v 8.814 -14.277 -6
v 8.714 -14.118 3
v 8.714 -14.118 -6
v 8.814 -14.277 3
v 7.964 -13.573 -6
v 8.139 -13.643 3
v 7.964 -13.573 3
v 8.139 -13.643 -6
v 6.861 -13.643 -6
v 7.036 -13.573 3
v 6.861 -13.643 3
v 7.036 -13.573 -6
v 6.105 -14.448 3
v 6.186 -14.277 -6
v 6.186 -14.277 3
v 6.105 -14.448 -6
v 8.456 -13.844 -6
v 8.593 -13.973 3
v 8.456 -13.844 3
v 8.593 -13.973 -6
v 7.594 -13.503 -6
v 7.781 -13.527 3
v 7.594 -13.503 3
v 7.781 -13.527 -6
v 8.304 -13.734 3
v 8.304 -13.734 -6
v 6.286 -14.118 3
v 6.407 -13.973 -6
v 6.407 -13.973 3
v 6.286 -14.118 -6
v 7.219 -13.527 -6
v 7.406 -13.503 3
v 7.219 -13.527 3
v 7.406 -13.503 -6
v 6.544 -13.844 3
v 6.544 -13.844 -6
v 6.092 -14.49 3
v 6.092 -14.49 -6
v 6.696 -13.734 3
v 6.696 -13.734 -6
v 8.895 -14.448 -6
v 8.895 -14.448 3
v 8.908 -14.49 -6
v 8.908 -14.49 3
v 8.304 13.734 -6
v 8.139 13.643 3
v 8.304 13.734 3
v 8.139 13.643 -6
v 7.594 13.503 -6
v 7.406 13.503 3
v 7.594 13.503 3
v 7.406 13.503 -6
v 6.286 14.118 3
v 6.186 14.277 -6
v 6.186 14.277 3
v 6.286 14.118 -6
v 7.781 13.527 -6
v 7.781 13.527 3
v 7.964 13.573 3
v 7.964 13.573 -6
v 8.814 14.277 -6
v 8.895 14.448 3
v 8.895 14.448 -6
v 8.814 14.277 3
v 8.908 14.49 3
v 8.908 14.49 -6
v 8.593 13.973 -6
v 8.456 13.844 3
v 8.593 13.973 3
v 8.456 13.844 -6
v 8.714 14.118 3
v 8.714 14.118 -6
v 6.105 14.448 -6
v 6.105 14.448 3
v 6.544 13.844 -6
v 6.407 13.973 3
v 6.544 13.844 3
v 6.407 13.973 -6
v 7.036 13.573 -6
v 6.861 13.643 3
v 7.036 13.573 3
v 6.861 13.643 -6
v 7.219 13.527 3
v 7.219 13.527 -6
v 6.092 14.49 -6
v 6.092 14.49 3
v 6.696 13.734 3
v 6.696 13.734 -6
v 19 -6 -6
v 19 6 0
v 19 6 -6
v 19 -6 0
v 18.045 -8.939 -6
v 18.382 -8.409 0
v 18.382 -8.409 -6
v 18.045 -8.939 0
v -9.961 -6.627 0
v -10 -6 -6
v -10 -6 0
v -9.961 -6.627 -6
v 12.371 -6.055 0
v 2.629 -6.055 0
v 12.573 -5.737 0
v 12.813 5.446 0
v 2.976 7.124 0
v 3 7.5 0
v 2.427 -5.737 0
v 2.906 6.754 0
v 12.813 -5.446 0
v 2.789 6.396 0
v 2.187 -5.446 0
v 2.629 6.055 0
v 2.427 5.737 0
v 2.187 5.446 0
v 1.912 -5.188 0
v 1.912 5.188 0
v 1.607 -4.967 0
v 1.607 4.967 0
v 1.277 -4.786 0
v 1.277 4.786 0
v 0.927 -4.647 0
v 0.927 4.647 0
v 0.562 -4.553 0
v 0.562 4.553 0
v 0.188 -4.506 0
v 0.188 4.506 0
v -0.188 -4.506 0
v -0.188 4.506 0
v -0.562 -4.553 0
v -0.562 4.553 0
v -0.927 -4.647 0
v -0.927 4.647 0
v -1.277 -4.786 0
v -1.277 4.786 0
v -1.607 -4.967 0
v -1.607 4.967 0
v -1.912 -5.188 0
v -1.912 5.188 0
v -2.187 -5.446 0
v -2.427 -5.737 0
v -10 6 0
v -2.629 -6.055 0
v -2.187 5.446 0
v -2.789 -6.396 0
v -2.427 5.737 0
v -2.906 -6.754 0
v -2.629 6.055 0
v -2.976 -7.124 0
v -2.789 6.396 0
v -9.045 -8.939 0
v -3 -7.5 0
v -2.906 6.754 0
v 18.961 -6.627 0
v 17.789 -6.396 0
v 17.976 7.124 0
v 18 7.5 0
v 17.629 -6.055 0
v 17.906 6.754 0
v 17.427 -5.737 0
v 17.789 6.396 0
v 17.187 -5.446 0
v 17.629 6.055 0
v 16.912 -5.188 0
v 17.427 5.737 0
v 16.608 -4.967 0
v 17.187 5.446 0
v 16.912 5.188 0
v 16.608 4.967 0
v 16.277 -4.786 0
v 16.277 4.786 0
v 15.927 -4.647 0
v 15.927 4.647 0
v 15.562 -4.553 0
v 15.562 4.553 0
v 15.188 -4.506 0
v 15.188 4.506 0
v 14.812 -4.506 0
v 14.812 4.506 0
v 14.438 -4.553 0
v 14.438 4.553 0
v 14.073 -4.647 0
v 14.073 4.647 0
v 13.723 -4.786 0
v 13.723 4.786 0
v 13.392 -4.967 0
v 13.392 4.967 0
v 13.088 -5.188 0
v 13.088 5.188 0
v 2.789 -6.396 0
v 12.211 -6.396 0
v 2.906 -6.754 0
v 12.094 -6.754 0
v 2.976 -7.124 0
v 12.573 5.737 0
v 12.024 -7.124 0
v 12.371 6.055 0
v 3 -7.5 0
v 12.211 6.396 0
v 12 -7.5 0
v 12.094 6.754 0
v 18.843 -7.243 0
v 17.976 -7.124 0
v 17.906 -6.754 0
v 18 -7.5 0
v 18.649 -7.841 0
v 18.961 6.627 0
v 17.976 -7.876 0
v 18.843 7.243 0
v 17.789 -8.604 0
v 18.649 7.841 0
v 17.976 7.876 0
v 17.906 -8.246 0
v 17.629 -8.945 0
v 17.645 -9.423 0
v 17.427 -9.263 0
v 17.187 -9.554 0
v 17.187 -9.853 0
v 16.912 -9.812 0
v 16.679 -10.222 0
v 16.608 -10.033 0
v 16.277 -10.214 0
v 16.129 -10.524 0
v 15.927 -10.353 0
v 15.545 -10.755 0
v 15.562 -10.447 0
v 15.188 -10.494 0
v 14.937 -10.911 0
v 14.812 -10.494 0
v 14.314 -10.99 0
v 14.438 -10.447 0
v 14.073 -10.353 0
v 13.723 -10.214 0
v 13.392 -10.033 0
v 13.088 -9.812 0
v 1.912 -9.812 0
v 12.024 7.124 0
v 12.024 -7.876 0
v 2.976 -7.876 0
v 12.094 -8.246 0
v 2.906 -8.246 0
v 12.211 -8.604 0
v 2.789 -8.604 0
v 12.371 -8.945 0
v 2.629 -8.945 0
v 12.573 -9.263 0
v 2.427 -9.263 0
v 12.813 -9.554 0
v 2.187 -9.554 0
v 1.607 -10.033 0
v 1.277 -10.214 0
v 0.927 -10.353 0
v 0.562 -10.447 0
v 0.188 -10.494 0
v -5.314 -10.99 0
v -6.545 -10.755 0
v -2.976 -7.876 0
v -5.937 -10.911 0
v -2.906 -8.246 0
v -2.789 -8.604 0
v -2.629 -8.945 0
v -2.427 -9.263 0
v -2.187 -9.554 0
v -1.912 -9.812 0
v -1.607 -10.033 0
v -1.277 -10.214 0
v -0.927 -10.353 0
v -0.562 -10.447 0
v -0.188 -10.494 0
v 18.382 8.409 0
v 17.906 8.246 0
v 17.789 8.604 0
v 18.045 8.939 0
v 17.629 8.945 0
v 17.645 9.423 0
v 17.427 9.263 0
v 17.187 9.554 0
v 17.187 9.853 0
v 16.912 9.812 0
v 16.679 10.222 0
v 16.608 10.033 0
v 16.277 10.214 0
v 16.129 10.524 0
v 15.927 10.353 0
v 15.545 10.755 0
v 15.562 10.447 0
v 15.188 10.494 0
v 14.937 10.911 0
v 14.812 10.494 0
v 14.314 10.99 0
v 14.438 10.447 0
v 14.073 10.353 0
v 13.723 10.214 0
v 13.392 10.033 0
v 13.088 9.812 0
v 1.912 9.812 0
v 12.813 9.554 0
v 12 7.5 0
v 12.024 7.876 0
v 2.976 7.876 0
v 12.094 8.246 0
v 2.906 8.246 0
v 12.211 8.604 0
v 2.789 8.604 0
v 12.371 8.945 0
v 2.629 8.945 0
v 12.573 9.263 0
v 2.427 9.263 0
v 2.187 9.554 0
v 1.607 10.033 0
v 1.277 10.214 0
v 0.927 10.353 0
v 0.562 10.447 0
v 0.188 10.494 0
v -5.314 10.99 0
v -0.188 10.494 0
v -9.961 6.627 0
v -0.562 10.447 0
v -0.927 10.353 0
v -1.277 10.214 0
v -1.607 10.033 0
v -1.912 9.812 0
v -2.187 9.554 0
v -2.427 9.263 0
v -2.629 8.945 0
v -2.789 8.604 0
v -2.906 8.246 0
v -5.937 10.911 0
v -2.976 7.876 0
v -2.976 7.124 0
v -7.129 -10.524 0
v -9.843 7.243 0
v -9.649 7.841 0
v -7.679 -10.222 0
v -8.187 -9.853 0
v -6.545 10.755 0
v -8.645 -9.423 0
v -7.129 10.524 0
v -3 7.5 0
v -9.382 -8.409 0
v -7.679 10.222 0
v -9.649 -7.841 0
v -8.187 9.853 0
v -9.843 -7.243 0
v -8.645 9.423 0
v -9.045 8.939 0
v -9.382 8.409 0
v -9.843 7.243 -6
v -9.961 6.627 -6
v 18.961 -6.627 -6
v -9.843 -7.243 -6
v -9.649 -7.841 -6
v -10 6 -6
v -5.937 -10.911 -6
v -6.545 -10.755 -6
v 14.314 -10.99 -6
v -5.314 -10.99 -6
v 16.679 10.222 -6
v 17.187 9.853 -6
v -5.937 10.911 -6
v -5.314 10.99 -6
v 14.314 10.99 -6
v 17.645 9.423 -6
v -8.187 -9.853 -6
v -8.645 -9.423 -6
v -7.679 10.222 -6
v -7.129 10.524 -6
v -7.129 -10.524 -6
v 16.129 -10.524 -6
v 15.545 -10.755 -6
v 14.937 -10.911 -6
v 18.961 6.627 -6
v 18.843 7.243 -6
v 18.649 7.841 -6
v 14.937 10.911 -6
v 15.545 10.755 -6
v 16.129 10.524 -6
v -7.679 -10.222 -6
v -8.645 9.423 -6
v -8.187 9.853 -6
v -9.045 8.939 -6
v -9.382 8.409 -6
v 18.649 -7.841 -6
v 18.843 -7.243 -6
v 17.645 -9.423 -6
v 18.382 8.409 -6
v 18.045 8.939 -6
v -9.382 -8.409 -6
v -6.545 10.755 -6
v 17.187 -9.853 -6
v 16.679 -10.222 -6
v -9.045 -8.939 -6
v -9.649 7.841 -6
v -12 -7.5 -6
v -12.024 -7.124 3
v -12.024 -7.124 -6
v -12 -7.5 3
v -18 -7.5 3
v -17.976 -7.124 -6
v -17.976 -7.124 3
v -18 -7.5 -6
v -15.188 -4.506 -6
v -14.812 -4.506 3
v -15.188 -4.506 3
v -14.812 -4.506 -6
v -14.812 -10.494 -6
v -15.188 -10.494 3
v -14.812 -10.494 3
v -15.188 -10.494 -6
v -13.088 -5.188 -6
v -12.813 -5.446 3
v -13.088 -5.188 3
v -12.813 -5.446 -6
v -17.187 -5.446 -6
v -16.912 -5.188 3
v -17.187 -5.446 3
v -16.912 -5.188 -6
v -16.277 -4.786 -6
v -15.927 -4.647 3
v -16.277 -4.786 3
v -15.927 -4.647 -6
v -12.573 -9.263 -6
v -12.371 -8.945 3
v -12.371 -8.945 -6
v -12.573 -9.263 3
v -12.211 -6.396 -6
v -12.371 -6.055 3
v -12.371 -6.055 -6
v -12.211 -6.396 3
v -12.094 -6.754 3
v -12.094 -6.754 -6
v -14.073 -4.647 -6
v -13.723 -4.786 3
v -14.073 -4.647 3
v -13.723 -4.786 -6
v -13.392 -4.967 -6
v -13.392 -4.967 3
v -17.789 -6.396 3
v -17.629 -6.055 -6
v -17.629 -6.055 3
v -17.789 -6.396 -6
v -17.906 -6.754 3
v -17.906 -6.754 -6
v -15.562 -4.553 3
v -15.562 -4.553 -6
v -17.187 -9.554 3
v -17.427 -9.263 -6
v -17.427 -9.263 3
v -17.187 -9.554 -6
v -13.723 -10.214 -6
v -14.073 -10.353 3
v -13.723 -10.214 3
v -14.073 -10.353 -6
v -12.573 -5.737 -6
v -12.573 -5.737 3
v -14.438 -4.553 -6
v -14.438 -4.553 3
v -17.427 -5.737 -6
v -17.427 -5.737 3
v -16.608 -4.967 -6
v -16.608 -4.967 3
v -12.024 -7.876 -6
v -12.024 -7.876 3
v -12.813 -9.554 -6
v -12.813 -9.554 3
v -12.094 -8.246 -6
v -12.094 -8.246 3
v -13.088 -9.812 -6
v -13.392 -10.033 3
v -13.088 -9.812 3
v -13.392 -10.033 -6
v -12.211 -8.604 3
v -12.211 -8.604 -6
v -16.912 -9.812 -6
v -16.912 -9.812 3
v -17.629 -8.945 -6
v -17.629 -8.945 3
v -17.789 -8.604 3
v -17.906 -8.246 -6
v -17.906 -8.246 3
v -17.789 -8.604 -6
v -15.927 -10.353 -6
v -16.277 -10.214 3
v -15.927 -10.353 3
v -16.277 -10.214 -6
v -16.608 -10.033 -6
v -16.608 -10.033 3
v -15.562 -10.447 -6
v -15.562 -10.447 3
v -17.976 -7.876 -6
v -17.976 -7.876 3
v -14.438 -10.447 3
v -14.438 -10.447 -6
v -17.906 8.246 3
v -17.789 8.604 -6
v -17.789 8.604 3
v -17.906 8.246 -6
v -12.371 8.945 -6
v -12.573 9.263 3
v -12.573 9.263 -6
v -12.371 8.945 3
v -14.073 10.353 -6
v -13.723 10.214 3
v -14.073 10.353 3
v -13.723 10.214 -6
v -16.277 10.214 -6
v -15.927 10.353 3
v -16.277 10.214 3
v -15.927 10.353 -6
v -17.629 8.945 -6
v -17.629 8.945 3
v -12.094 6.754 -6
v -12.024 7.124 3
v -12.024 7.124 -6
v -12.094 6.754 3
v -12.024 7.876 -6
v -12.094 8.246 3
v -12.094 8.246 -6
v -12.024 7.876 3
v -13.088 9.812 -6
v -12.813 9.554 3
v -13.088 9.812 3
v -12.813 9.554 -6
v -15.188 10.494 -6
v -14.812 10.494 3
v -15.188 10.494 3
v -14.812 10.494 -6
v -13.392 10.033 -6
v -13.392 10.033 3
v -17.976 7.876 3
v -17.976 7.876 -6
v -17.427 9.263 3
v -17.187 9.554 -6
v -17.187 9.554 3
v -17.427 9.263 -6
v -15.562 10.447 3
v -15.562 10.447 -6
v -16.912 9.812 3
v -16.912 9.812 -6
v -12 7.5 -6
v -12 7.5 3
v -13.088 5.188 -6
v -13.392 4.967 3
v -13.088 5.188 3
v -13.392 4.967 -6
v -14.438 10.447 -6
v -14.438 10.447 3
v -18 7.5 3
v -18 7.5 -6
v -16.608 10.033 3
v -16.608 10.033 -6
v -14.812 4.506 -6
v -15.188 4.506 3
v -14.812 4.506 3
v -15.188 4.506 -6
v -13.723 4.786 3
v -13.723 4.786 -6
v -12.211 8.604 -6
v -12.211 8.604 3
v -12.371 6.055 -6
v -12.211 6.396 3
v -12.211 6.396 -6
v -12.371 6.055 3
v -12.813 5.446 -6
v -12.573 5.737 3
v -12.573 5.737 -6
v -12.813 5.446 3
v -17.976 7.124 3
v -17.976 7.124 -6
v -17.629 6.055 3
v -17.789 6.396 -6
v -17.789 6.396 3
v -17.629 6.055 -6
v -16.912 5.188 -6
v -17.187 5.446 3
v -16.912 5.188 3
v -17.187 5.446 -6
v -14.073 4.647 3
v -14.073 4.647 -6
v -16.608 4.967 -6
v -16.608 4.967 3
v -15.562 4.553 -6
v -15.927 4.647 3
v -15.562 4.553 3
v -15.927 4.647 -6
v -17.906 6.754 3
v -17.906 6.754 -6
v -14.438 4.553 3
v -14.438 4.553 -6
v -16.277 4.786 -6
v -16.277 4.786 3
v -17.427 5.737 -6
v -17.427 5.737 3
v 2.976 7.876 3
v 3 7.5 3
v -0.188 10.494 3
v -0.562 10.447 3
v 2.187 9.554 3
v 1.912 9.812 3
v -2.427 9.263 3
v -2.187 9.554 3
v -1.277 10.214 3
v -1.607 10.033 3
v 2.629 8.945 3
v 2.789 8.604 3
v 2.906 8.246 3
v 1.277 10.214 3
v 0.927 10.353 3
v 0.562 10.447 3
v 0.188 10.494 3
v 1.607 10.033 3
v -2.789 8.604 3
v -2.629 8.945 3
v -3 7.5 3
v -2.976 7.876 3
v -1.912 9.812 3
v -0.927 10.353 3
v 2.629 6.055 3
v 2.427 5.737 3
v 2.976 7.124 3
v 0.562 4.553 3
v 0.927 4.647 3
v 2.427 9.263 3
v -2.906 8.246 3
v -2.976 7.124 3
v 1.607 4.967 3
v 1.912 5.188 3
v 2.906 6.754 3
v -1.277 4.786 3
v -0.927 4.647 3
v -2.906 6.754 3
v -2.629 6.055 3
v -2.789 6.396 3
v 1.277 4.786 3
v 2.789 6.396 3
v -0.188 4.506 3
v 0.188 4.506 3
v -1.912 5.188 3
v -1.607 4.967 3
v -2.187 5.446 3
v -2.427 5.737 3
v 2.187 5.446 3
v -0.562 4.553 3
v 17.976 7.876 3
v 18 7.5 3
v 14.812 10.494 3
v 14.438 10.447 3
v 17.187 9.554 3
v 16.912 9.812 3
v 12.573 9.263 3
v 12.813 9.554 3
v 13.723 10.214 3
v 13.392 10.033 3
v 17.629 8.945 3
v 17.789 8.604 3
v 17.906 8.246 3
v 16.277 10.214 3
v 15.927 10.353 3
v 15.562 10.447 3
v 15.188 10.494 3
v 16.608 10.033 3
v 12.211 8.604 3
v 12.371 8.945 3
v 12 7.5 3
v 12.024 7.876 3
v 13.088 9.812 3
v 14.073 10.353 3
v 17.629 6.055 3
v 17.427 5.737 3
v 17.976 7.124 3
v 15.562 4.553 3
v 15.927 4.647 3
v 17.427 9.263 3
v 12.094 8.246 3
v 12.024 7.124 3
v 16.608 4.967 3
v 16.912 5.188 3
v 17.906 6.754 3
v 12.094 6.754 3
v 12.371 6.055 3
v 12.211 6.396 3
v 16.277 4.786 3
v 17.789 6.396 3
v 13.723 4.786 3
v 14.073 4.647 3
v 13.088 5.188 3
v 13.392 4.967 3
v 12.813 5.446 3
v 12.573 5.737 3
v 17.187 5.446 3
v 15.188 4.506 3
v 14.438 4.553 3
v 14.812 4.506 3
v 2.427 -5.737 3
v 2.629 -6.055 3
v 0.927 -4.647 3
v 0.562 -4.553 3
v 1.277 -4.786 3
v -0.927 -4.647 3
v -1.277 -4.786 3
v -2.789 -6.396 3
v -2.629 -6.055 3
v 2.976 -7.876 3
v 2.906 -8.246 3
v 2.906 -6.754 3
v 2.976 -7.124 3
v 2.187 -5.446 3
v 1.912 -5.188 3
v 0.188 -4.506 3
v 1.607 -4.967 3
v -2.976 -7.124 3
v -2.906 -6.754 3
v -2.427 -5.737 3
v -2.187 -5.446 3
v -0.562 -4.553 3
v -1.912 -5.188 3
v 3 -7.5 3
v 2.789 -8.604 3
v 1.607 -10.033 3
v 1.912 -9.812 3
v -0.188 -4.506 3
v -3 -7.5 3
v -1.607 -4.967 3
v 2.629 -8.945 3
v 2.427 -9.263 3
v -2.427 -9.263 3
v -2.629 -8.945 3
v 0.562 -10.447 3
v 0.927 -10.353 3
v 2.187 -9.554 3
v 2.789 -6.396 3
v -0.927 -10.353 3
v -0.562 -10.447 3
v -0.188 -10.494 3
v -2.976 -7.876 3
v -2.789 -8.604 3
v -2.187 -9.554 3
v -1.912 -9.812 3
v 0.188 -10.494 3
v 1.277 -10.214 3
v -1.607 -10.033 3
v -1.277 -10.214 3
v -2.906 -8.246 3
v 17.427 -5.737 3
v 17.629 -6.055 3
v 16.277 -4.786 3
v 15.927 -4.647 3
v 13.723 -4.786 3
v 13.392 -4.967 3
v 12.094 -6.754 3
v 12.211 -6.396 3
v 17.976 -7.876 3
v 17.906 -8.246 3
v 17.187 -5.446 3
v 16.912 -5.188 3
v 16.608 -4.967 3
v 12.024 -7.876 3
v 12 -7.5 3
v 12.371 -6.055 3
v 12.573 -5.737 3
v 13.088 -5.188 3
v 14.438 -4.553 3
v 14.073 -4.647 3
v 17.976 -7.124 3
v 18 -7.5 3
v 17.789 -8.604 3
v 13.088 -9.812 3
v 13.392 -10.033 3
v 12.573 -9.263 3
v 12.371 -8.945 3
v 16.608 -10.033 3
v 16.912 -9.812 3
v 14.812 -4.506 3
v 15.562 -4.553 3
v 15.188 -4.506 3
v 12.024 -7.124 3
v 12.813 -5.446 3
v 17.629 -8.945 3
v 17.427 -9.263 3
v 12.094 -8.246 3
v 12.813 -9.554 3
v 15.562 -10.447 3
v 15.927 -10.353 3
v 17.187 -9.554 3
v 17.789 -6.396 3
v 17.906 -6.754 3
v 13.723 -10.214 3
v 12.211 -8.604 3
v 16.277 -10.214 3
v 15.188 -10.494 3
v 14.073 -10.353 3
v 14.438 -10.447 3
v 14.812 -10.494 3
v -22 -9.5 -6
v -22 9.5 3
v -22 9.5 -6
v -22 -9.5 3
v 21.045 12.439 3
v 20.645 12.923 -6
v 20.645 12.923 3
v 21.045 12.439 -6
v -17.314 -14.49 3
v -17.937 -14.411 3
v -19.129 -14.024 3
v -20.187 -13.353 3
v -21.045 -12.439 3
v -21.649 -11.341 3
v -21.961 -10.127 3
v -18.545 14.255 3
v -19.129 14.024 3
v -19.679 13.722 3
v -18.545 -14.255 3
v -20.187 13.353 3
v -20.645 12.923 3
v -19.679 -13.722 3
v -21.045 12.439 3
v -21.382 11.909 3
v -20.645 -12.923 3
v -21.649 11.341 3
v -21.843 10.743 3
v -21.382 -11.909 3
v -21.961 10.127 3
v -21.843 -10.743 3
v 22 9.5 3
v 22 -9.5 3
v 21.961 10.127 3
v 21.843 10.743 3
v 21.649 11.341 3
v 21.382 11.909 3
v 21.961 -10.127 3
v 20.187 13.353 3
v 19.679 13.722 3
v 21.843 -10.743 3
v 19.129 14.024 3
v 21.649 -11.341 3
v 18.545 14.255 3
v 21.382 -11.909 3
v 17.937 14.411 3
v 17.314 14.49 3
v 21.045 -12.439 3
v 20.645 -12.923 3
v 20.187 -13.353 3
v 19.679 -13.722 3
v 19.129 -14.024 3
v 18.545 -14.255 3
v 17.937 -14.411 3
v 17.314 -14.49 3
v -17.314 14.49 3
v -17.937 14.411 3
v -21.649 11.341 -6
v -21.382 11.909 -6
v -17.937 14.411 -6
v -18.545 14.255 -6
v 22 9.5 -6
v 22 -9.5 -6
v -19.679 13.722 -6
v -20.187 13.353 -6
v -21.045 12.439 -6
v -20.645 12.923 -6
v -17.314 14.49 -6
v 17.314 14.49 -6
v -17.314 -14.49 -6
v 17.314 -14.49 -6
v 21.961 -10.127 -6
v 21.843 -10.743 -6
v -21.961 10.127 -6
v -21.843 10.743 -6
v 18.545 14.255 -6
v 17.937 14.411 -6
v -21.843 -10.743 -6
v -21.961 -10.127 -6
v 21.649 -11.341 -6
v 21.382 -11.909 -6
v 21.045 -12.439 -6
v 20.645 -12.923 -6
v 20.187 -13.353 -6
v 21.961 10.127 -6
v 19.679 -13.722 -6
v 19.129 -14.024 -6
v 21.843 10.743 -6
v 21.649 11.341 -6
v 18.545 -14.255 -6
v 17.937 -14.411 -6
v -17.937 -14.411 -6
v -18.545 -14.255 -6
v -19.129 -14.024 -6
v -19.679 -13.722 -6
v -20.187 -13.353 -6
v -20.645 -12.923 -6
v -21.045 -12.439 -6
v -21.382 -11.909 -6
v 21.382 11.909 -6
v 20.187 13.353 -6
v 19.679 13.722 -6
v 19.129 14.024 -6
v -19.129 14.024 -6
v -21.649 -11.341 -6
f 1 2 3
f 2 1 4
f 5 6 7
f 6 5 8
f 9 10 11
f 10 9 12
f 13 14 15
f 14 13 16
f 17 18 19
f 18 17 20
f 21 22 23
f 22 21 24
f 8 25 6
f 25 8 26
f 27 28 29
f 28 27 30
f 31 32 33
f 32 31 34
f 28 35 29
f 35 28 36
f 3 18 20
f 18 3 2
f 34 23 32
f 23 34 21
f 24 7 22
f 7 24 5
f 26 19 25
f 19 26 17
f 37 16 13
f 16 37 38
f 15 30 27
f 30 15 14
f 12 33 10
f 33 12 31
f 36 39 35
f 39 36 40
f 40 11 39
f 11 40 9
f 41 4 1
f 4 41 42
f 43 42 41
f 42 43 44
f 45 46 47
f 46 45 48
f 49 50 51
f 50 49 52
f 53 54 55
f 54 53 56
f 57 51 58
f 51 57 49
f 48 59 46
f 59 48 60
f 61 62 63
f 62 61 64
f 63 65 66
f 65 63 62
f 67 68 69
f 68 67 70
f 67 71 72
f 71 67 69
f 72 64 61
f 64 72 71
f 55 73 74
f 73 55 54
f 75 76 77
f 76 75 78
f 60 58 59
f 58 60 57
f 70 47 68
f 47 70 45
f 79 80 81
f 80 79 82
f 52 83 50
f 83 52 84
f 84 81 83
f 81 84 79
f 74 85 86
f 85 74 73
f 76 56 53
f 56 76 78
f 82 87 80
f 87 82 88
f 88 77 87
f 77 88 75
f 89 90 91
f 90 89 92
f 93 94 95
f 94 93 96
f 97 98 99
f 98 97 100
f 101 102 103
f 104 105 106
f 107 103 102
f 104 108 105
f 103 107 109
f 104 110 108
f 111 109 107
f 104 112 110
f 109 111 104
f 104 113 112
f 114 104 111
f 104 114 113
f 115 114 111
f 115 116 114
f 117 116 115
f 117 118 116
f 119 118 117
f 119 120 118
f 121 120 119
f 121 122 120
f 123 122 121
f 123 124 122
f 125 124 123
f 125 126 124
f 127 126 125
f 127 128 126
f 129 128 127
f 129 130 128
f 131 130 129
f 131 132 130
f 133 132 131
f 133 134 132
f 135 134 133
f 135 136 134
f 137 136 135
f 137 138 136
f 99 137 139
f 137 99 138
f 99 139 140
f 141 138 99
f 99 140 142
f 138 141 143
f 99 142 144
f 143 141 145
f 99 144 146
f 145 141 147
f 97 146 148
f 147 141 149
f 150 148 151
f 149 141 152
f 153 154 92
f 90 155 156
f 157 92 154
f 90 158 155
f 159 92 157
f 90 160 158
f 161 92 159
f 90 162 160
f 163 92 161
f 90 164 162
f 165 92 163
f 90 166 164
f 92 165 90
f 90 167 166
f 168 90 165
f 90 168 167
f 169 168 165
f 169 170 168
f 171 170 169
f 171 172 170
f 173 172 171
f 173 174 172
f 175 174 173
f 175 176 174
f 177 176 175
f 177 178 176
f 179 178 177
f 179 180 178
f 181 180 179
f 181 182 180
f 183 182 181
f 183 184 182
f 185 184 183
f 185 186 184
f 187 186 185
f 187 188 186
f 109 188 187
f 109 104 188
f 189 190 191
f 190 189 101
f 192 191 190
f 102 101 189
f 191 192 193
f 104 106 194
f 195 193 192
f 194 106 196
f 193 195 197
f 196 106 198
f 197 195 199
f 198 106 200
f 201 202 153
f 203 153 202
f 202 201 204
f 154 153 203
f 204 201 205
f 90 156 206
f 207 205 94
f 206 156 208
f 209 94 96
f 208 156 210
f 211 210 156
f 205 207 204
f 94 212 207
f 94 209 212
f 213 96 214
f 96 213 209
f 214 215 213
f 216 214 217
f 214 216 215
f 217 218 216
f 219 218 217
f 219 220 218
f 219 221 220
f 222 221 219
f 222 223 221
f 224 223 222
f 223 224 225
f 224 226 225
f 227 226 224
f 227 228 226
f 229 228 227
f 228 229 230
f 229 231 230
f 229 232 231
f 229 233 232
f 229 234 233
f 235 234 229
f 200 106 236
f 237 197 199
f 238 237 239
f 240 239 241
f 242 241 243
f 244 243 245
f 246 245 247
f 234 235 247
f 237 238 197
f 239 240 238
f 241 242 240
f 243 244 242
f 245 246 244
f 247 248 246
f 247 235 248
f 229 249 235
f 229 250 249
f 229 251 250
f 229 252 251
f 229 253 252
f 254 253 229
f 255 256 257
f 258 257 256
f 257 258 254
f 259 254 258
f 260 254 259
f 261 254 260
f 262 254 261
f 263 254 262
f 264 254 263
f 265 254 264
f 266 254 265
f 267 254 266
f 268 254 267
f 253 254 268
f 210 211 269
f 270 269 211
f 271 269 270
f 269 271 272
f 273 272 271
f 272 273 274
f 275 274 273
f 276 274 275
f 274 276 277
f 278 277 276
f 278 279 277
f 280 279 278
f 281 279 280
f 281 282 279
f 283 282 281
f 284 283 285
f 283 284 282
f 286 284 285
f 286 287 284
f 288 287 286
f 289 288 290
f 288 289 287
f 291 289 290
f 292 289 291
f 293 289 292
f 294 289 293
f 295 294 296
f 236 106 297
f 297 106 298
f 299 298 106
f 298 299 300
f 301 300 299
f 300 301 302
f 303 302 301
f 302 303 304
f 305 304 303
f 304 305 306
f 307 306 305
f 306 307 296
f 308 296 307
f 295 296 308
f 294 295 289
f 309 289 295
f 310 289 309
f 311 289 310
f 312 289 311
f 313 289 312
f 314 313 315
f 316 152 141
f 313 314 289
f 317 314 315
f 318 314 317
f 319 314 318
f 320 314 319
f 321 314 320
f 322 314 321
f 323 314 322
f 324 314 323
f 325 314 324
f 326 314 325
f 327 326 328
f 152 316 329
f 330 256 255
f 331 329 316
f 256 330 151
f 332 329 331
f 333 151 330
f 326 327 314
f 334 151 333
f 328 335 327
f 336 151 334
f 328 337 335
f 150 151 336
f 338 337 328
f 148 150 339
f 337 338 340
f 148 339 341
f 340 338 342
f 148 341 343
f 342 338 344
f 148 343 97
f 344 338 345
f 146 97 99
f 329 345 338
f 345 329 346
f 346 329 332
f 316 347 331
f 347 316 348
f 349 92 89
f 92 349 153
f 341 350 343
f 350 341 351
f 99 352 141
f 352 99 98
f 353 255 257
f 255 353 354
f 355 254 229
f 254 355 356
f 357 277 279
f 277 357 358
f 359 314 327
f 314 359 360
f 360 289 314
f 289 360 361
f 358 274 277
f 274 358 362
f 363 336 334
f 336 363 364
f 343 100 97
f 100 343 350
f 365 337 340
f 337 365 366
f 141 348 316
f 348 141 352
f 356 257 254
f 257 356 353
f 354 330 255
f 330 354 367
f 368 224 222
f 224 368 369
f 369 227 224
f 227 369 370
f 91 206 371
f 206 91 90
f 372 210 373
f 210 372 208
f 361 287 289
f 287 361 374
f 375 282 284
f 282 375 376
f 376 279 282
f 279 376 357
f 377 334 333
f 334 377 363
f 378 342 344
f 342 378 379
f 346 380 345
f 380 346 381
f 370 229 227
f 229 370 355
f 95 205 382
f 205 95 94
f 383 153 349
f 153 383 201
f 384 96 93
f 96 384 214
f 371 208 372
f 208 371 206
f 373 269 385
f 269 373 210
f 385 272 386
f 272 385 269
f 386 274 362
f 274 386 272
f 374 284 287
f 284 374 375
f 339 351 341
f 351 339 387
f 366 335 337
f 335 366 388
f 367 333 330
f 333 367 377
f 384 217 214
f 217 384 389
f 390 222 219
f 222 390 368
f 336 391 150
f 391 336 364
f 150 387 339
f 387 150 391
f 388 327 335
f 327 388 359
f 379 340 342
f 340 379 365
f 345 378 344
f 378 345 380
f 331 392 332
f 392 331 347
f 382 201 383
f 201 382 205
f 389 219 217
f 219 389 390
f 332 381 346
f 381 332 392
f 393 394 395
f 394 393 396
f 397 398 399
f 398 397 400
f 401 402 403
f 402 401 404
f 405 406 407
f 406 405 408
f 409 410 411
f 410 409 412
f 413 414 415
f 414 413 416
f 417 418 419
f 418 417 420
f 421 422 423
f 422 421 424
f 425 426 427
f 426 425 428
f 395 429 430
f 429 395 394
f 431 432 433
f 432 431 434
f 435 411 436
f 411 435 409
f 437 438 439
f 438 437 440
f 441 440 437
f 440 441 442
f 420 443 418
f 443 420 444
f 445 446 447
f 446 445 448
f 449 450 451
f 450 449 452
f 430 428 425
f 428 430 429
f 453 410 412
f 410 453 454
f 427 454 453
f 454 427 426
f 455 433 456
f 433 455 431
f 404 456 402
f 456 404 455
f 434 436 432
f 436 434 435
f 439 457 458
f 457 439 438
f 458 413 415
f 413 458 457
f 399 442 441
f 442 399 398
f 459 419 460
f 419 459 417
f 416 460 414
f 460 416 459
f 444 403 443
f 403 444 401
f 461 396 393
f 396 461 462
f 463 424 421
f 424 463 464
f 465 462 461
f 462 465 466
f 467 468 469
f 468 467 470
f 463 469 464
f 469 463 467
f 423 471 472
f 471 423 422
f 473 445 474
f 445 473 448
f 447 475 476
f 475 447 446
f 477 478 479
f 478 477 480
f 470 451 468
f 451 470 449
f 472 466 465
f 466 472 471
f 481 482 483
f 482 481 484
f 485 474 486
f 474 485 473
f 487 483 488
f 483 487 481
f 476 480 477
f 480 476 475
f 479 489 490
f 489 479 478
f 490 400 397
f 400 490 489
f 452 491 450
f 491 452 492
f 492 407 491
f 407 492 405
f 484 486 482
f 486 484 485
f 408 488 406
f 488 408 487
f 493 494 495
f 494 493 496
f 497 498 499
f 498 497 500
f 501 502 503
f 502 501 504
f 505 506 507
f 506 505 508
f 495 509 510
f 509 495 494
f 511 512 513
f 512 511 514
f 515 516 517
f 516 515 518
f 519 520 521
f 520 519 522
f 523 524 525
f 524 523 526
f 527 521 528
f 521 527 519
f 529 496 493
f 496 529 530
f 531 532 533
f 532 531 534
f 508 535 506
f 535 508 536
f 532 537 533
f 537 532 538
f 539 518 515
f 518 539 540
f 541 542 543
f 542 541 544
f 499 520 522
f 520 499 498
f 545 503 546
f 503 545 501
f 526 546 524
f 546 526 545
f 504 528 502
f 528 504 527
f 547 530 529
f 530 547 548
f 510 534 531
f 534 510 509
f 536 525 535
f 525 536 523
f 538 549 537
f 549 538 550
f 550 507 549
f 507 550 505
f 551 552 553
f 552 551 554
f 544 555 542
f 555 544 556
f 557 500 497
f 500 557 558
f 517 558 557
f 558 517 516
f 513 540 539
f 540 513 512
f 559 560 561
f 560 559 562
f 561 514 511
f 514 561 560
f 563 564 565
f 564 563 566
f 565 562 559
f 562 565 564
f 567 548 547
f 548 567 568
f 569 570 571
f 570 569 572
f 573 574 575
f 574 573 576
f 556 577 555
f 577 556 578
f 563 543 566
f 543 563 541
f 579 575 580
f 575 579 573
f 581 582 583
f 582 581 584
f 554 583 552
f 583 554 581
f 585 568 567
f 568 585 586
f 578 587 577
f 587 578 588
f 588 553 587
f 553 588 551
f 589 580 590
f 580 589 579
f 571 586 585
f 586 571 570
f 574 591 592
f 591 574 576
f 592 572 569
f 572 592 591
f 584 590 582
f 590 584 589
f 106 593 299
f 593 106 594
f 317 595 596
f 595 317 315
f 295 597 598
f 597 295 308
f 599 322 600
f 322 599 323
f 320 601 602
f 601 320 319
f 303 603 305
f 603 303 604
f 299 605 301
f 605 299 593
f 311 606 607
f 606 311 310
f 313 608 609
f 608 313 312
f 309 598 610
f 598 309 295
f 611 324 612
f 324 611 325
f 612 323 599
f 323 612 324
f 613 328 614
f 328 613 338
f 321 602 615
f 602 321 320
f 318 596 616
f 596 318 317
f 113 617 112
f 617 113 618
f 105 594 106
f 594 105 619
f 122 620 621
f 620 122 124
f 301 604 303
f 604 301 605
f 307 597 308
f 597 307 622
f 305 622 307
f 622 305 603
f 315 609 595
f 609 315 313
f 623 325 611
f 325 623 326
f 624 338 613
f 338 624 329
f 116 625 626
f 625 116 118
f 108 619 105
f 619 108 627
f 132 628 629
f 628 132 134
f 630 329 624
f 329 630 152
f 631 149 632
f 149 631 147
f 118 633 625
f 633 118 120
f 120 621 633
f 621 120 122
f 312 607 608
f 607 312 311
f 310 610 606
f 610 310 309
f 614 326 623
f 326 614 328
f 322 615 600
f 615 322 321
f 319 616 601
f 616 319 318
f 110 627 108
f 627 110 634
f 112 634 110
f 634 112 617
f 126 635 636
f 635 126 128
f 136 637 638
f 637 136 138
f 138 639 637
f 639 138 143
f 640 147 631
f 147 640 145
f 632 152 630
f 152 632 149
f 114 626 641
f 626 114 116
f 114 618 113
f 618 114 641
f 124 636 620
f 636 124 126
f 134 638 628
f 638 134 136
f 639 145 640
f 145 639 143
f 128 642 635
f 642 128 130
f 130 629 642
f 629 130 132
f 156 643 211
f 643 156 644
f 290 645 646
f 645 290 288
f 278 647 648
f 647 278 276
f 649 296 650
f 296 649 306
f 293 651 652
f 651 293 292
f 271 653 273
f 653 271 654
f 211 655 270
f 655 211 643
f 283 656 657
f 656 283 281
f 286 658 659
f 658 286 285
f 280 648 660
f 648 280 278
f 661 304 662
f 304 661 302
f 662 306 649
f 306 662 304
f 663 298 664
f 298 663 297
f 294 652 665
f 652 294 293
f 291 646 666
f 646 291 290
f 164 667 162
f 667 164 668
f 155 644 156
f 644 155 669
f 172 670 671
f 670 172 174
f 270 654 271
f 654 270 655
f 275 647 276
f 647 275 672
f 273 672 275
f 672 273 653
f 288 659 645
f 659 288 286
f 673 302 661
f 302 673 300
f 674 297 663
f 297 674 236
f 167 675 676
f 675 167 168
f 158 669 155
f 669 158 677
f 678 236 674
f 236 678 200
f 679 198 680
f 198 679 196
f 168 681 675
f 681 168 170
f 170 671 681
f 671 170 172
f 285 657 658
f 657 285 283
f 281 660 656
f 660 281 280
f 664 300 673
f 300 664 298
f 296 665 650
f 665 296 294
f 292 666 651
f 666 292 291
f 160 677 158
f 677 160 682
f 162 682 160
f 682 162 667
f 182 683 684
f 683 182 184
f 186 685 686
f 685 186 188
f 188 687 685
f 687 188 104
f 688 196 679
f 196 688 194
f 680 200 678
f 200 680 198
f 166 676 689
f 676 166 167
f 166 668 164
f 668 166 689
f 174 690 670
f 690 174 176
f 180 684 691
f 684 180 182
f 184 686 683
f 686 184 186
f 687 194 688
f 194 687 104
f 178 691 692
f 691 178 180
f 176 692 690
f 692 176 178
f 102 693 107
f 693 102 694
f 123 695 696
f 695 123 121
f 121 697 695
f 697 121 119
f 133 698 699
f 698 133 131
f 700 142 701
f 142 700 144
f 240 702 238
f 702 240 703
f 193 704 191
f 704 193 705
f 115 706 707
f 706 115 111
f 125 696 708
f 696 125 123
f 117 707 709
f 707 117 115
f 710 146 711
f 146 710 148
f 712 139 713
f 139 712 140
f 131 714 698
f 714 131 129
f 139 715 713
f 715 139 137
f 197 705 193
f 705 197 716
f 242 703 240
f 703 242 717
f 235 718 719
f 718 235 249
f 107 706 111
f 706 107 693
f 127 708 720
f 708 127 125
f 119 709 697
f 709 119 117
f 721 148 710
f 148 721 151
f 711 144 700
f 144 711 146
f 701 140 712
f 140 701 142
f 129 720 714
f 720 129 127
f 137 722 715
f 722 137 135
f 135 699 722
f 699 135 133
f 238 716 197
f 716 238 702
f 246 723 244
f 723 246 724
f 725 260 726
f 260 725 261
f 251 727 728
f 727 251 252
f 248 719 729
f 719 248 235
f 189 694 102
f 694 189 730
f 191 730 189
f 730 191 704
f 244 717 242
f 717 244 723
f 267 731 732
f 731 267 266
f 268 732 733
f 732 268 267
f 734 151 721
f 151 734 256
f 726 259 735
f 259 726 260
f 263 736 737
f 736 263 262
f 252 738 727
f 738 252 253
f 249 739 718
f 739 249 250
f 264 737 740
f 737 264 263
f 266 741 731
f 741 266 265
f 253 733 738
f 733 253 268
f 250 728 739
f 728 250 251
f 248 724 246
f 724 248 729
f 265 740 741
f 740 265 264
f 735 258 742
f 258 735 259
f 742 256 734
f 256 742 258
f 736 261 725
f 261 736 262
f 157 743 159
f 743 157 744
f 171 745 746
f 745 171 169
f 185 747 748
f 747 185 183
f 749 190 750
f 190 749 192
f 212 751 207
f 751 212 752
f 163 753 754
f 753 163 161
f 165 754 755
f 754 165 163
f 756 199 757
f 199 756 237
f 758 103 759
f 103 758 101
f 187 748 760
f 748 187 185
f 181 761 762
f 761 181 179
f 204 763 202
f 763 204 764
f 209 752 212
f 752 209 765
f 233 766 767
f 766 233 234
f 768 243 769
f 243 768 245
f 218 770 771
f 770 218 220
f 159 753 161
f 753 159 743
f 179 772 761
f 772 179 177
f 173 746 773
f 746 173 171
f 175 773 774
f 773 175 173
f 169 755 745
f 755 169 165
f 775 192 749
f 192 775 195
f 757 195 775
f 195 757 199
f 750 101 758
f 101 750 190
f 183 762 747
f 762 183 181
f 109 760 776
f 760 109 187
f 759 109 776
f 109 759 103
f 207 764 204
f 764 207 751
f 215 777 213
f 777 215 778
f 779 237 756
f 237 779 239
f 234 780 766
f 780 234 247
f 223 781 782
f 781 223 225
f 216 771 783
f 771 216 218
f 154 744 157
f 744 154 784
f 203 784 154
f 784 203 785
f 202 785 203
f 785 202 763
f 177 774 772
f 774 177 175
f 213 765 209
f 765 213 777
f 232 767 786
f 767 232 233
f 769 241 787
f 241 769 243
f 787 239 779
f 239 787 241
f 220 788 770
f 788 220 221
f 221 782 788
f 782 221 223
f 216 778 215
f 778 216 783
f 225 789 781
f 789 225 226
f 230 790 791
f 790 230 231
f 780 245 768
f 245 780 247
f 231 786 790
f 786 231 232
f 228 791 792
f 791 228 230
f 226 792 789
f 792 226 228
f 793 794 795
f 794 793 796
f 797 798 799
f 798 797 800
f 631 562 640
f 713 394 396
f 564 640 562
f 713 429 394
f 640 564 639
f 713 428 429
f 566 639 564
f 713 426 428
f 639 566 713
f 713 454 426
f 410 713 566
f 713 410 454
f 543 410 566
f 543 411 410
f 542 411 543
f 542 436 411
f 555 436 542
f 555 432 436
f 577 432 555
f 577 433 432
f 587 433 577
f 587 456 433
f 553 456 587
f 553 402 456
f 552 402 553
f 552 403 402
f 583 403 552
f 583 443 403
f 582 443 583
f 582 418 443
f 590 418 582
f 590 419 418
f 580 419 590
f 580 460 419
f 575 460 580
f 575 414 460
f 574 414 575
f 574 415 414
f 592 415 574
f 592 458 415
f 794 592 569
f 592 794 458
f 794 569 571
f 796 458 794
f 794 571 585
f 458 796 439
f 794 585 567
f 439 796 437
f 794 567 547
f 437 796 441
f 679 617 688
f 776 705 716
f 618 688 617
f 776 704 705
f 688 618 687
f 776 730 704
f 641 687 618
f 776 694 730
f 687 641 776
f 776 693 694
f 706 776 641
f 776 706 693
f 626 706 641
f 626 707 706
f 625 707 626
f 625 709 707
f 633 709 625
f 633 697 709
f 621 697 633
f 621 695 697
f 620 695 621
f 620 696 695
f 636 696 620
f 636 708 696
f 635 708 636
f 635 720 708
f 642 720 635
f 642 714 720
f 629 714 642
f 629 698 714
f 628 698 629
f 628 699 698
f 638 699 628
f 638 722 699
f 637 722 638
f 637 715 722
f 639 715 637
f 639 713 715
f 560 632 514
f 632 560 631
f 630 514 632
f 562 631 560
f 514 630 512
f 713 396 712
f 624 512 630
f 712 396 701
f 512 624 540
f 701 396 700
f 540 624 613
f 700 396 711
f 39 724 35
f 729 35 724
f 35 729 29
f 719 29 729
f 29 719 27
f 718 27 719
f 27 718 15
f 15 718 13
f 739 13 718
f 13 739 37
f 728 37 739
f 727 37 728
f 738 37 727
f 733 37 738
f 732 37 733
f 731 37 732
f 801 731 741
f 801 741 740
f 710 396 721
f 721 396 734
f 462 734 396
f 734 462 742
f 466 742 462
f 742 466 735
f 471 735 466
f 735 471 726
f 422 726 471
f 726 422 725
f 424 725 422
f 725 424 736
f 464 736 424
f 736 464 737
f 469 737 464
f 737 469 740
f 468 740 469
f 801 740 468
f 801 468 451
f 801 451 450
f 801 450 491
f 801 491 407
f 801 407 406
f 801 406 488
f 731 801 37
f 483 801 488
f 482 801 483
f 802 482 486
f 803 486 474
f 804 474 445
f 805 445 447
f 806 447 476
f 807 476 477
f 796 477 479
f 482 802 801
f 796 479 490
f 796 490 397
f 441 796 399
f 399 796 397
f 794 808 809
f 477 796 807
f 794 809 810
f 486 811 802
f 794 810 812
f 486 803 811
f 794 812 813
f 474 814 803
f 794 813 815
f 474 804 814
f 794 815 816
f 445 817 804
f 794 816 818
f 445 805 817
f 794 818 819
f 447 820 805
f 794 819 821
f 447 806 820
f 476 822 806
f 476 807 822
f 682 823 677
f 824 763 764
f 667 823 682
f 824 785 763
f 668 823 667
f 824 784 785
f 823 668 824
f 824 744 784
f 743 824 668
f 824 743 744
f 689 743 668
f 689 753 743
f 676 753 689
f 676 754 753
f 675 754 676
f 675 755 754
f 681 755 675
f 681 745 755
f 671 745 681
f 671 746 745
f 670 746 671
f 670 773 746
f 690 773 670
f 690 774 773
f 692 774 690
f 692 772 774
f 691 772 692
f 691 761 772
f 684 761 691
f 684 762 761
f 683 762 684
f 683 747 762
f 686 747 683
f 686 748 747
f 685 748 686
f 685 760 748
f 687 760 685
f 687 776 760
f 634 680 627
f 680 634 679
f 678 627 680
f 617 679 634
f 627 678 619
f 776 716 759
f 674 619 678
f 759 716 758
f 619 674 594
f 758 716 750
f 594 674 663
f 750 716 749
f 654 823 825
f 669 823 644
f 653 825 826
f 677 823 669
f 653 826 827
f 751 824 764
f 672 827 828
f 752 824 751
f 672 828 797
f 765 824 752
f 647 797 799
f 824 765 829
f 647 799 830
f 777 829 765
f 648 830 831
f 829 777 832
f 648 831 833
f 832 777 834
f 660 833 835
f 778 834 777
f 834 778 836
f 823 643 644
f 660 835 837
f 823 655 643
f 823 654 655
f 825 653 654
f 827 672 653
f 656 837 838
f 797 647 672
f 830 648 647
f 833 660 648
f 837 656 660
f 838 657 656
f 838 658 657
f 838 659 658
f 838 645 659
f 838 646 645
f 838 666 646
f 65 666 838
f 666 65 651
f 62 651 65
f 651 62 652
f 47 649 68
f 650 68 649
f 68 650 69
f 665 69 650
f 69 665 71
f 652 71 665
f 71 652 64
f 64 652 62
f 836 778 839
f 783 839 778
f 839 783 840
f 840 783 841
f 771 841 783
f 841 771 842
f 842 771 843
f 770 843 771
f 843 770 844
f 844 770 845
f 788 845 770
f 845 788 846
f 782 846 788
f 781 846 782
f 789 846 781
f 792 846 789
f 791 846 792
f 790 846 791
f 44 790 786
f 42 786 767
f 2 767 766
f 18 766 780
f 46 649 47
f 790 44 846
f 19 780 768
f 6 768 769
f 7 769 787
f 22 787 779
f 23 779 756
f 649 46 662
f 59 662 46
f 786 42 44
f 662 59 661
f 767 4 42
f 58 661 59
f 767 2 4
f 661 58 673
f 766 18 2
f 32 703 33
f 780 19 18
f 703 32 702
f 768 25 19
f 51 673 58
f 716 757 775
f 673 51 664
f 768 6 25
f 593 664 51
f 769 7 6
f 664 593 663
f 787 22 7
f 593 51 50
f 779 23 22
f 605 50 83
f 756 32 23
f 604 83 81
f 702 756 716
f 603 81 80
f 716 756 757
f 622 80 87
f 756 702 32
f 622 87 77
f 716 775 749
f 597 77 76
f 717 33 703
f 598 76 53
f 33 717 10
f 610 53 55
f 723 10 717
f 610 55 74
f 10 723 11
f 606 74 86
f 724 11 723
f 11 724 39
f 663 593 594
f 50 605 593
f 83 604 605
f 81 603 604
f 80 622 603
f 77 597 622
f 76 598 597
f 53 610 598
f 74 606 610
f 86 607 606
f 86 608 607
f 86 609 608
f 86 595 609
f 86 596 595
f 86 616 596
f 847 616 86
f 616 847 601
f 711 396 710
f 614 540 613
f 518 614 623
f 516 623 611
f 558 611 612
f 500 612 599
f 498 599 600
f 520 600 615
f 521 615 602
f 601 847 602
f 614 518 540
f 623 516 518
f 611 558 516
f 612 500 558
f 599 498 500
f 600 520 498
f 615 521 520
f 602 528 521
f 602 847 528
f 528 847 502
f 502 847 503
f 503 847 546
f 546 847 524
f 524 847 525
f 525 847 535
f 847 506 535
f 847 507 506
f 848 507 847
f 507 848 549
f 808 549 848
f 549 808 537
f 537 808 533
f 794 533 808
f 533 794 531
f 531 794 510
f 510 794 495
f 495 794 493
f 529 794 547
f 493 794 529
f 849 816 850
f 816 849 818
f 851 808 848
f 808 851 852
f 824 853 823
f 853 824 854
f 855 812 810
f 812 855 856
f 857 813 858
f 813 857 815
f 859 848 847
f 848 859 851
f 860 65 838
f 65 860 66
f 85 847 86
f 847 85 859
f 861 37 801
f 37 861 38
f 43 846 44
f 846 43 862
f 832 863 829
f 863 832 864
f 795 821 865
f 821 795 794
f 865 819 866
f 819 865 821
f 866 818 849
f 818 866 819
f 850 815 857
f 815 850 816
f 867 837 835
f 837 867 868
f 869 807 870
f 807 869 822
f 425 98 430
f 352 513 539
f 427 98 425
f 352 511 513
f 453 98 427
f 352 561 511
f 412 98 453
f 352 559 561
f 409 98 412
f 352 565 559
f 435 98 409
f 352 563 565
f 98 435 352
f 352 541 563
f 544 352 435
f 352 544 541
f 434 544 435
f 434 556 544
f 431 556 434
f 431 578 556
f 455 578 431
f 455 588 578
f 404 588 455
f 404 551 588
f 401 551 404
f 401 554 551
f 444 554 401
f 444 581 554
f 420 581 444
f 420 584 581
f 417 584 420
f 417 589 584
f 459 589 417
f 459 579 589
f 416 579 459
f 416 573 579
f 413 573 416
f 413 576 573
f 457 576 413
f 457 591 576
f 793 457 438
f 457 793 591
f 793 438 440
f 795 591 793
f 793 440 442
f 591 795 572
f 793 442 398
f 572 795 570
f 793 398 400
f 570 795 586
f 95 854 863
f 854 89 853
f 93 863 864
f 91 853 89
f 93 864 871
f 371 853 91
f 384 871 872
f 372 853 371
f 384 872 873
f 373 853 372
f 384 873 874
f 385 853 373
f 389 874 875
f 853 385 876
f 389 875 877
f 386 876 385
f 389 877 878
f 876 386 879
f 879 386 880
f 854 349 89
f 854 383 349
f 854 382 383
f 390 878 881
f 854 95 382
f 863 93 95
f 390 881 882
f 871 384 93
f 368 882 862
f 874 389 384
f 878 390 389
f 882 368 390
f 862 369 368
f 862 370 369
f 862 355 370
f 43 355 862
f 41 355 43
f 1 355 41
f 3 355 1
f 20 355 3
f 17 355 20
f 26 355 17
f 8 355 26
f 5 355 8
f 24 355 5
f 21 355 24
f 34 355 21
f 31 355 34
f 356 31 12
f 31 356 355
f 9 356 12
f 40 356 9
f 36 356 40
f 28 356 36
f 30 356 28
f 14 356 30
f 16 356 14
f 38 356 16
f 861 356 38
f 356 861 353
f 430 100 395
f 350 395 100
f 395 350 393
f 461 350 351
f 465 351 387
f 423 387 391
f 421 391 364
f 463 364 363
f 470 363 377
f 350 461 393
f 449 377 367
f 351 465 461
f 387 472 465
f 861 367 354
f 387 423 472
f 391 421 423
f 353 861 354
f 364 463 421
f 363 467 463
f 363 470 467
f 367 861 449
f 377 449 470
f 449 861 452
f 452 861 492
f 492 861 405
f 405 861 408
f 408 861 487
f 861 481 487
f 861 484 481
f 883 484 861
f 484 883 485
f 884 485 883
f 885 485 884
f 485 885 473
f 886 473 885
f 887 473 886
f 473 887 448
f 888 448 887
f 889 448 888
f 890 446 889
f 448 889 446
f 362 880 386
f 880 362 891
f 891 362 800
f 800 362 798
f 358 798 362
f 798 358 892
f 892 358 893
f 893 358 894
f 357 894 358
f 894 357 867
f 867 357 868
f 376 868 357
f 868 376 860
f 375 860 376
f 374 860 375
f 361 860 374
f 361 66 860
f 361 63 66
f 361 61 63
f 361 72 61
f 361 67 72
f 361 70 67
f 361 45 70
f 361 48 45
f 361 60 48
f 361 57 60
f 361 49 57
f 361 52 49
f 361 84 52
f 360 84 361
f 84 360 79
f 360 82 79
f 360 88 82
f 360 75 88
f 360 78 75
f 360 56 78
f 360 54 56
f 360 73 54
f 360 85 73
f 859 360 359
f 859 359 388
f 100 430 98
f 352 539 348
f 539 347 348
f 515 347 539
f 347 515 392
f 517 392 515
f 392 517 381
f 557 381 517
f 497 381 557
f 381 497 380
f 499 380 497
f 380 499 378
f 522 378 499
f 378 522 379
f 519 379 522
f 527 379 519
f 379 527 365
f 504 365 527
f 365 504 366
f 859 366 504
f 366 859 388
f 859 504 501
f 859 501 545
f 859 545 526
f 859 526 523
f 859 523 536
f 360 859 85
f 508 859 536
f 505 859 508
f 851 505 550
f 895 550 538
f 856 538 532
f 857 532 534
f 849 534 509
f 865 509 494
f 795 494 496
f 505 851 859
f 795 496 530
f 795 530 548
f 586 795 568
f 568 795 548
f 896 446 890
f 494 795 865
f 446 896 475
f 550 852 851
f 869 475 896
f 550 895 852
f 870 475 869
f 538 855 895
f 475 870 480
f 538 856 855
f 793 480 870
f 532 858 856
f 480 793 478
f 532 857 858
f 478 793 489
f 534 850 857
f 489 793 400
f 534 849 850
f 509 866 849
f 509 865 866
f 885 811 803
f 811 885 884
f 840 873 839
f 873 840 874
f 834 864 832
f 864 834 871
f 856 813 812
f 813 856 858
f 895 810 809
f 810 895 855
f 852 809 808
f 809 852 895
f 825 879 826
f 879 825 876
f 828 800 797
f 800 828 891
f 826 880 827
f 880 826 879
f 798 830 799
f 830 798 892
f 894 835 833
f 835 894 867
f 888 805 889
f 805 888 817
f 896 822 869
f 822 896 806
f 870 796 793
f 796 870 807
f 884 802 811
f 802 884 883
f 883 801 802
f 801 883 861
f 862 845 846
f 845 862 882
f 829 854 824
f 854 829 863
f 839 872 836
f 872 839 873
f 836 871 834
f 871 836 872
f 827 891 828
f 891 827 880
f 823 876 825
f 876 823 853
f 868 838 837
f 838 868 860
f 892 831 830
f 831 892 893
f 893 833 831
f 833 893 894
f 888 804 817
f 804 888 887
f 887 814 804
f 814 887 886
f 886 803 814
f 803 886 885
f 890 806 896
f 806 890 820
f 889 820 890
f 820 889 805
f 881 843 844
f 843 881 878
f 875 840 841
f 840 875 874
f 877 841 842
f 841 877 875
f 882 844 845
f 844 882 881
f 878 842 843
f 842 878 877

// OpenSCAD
$fn = 50;


difference() {
	union() {
		translate(v = [0, 0, -6]) {
			hull() {
				translate(v = [-17.0000000000, 9.5000000000, 0]) {
					cylinder(h = 9, r = 5);
				}
				translate(v = [17.0000000000, 9.5000000000, 0]) {
					cylinder(h = 9, r = 5);
				}
				translate(v = [-17.0000000000, -9.5000000000, 0]) {
					cylinder(h = 9, r = 5);
				}
				translate(v = [17.0000000000, -9.5000000000, 0]) {
					cylinder(h = 9, r = 5);
				}
			}
		}
	}
	union() {
		translate(v = [7.5000000000, -15, -9]) {
			rotate(a = [0, 0, 0]) {
				difference() {
					union() {
						translate(v = [0, 0, -50.0000000000]) {
							cylinder(h = 100, r = 1.5000000000);
						}
						translate(v = [0, 0, -50.0000000000]) {
							cylinder(h = 100, r = 1.5000000000);
						}
						linear_extrude(height = 2.5000000000) {
							polygon(points = [[3.1735000000, 0.0000000000], [1.5867500000, 2.7483316189], [-1.5867500000, 2.7483316189], [-3.1735000000, 0.0000000000], [-1.5867500000, -2.7483316189], [1.5867500000, -2.7483316189]]);
						}
						translate(v = [0, 0, -50.0000000000]) {
							cylinder(h = 100, r = 1.5000000000);
						}
					}
					union();
				}
			}
		}
		translate(v = [7.5000000000, 15, -9]) {
			rotate(a = [0, 0, 0]) {
				difference() {
					union() {
						translate(v = [0, 0, -50.0000000000]) {
							cylinder(h = 100, r = 1.5000000000);
						}
						translate(v = [0, 0, -50.0000000000]) {
							cylinder(h = 100, r = 1.5000000000);
						}
						linear_extrude(height = 2.5000000000) {
							polygon(points = [[3.1735000000, 0.0000000000], [1.5867500000, 2.7483316189], [-1.5867500000, 2.7483316189], [-3.1735000000, 0.0000000000], [-1.5867500000, -2.7483316189], [1.5867500000, -2.7483316189]]);
						}
						translate(v = [0, 0, -50.0000000000]) {
							cylinder(h = 100, r = 1.5000000000);
						}
					}
					union();
				}
			}
		}
		translate(v = [0, 0, -3]) {
			rotate(a = [0, 0, 180]) {
				difference() {
					union() {
						translate(v = [-4.5000000000, 0, -6]) {
							#hull() {
								translate(v = [-9.5000000000, 6.0000000000, 0]) {
									cylinder(h = 9, r = 5);
								}
								translate(v = [9.5000000000, 6.0000000000, 0]) {
									cylinder(h = 9, r = 5);
								}
								translate(v = [-9.5000000000, -6.0000000000, 0]) {
									cylinder(h = 9, r = 5);
								}
								translate(v = [9.5000000000, -6.0000000000, 0]) {
									cylinder(h = 9, r = 5);
								}
							}
						}
					}
					union();
				}
			}
		}
		translate(v = [-15.0000000000, -7.5000000000, -50.0000000000]) {
			cylinder(h = 100, r = 3.0000000000);
		}
		translate(v = [-15.0000000000, 7.5000000000, -50.0000000000]) {
			cylinder(h = 100, r = 3.0000000000);
		}
		translate(v = [-15.0000000000, 7.5000000000, -50.0000000000]) {
			cylinder(h = 100, r = 3.0000000000);
		}
		translate(v = [0.0000000000, 7.5000000000, -50.0000000000]) {
			cylinder(h = 100, r = 3.0000000000);
		}
		translate(v = [15.0000000000, 7.5000000000, -50.0000000000]) {
			cylinder(h = 100, r = 3.0000000000);
		}
		translate(v = [-15.0000000000, -7.5000000000, -50.0000000000]) {
			cylinder(h = 100, r = 3.0000000000);
		}
		translate(v = [0.0000000000, -7.5000000000, -50.0000000000]) {
			cylinder(h = 100, r = 3.0000000000);
		}
		translate(v = [15.0000000000, -7.5000000000, -50.0000000000]) {
			cylinder(h = 100, r = 3.0000000000);
		}
	}
}
